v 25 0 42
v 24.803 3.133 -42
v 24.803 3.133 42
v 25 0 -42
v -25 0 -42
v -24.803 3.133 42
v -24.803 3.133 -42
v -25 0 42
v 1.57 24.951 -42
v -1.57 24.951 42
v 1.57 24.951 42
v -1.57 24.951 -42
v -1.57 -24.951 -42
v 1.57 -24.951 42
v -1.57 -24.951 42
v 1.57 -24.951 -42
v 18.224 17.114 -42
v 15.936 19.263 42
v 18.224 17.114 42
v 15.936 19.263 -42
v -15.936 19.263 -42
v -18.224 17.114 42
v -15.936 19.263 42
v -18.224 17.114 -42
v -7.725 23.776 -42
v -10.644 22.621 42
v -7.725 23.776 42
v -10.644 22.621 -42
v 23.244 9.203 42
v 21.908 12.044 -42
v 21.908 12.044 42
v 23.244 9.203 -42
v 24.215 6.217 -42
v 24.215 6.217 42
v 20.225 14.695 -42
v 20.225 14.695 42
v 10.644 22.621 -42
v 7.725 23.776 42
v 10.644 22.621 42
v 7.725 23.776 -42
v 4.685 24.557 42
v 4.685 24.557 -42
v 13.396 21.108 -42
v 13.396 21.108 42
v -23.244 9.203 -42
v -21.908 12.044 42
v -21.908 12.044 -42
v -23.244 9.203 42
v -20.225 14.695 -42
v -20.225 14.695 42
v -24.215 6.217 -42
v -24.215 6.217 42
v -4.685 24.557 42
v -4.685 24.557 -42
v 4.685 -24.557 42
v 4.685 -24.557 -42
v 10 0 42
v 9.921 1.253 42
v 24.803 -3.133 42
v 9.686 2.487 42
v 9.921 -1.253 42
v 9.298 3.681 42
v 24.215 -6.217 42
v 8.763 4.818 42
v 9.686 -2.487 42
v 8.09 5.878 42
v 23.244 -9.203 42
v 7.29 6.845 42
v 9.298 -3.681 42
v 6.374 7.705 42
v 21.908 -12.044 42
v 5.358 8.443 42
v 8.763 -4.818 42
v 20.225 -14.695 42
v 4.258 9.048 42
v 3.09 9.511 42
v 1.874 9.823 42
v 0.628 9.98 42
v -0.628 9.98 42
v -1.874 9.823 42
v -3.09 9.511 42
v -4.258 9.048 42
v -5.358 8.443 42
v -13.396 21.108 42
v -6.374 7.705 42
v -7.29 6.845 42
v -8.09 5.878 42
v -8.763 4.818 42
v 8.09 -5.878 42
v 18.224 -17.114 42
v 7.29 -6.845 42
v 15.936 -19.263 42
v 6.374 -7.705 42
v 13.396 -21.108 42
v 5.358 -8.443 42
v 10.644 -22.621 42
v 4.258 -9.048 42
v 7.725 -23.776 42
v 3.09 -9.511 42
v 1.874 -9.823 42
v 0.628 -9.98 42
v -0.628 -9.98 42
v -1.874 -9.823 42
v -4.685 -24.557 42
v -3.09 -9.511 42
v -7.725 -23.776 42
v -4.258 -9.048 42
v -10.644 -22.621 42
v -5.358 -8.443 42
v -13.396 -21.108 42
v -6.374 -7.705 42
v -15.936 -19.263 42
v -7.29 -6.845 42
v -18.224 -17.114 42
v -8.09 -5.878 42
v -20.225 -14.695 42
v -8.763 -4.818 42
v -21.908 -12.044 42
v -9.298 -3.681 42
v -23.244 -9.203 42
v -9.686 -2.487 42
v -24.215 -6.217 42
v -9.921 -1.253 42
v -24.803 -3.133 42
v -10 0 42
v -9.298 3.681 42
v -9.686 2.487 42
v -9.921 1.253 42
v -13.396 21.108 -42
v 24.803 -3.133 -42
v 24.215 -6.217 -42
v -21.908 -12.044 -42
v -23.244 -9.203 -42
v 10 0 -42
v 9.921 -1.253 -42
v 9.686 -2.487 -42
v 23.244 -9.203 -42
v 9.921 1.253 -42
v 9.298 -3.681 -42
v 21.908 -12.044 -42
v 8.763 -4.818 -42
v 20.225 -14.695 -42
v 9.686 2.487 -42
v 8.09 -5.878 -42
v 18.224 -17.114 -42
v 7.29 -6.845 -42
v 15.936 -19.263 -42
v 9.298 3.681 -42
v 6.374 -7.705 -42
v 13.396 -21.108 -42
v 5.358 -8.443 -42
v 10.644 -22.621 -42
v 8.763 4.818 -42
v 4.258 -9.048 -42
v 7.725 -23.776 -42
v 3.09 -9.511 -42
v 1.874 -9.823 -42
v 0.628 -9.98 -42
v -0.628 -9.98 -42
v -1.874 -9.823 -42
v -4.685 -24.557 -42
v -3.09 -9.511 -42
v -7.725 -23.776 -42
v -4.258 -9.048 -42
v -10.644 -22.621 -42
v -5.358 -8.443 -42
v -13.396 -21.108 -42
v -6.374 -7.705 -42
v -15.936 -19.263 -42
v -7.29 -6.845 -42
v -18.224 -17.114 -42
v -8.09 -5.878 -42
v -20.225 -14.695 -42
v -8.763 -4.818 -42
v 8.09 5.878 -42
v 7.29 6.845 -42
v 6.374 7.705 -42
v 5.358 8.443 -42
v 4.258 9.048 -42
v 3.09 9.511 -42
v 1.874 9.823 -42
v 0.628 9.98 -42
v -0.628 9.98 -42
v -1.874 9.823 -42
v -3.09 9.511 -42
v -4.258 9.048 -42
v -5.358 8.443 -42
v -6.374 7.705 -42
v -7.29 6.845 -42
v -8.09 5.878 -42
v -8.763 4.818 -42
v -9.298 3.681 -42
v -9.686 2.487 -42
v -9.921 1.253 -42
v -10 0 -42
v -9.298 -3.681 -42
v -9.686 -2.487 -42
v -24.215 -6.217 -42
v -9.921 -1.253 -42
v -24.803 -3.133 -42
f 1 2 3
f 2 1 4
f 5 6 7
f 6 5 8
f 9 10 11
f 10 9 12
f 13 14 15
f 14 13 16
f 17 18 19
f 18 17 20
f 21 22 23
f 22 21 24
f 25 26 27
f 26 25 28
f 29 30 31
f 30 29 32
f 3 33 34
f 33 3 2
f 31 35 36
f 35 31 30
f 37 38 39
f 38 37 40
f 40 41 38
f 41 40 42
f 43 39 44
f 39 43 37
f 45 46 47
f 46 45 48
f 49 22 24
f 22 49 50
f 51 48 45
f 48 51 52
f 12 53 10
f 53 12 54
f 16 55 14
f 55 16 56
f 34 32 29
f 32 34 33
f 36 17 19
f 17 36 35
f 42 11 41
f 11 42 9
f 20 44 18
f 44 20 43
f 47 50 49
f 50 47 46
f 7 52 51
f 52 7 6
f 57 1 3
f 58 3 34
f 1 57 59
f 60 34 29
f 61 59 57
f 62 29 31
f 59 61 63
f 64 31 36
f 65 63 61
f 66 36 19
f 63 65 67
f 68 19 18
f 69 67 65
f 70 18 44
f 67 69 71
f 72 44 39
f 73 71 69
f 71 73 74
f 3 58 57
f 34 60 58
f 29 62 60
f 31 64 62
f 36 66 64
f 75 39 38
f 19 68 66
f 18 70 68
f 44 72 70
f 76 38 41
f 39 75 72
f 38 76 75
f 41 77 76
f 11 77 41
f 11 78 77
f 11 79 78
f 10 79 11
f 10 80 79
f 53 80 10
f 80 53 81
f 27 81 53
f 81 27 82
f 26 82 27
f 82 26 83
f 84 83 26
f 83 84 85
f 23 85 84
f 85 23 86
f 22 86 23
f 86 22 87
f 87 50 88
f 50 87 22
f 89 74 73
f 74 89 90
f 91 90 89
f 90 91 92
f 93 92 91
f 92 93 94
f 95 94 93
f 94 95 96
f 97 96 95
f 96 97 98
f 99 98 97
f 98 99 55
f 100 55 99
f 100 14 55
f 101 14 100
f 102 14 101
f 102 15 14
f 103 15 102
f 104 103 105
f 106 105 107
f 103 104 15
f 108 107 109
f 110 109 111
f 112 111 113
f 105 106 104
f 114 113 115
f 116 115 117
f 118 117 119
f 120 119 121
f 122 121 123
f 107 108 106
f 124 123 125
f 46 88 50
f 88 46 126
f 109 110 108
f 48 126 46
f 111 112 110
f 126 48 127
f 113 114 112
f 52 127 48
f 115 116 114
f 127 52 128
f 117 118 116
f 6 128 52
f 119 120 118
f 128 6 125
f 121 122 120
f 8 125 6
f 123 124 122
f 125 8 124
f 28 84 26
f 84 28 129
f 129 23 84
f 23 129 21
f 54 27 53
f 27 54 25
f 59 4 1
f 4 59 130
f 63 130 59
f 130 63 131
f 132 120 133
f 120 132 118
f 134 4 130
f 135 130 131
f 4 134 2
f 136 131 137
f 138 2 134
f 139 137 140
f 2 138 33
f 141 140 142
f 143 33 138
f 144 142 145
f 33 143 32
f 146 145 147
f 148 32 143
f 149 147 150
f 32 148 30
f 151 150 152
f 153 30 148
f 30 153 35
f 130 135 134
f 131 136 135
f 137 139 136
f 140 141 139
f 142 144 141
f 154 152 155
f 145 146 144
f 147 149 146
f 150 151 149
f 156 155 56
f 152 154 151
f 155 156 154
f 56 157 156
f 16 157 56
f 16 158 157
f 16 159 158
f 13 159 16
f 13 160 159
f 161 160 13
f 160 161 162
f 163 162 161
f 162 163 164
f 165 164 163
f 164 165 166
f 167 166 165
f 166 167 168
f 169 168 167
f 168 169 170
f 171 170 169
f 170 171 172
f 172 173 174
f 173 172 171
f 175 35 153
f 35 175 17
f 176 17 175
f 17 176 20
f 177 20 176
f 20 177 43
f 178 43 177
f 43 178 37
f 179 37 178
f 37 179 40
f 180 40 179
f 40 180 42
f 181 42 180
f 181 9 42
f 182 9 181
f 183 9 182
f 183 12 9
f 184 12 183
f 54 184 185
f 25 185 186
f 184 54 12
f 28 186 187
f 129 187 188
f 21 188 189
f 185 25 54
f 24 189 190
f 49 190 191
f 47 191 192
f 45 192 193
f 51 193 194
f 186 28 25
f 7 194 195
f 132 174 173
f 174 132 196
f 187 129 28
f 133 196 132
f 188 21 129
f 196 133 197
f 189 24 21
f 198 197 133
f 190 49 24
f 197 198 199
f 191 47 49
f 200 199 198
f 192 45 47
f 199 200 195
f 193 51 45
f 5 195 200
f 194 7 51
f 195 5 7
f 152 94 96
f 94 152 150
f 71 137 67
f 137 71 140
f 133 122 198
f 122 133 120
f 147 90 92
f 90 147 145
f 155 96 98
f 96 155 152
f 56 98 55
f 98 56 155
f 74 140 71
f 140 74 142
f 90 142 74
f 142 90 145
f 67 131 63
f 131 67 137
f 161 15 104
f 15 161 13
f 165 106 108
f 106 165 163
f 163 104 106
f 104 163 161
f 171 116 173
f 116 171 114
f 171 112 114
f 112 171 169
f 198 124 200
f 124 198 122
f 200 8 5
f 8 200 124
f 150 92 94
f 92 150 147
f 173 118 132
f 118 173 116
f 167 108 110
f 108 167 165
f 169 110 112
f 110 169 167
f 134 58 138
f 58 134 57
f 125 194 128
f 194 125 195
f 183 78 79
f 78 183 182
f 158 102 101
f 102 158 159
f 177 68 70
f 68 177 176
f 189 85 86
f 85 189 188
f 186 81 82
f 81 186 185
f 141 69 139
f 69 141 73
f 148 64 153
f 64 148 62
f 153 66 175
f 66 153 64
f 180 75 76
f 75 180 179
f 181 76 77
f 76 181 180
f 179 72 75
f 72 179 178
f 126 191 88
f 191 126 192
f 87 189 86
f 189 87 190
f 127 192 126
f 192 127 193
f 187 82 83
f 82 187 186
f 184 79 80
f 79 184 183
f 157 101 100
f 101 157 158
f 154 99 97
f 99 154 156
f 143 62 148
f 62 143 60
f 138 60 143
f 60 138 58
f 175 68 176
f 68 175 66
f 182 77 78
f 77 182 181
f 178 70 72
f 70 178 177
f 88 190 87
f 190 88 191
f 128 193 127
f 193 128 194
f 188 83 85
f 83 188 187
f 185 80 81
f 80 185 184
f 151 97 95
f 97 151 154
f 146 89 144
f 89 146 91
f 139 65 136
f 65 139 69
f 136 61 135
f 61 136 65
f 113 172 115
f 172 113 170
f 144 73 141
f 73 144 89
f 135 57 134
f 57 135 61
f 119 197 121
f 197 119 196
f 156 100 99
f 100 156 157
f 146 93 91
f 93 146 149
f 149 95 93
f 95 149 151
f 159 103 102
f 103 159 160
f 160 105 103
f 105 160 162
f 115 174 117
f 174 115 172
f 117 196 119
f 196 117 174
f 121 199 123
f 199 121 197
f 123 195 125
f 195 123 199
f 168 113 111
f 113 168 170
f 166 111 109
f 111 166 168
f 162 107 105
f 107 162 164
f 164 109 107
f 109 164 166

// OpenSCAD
$fn = 50;


difference() {
	union() {
		translate(v = [0, 0, -42.0000000000]) {
			cylinder(h = 84, r = 25.0000000000);
		}
	}
	union() {
		translate(v = [0, 0, -100.0000000000]) {
			cylinder(h = 200, r = 10);
		}
	}
}
